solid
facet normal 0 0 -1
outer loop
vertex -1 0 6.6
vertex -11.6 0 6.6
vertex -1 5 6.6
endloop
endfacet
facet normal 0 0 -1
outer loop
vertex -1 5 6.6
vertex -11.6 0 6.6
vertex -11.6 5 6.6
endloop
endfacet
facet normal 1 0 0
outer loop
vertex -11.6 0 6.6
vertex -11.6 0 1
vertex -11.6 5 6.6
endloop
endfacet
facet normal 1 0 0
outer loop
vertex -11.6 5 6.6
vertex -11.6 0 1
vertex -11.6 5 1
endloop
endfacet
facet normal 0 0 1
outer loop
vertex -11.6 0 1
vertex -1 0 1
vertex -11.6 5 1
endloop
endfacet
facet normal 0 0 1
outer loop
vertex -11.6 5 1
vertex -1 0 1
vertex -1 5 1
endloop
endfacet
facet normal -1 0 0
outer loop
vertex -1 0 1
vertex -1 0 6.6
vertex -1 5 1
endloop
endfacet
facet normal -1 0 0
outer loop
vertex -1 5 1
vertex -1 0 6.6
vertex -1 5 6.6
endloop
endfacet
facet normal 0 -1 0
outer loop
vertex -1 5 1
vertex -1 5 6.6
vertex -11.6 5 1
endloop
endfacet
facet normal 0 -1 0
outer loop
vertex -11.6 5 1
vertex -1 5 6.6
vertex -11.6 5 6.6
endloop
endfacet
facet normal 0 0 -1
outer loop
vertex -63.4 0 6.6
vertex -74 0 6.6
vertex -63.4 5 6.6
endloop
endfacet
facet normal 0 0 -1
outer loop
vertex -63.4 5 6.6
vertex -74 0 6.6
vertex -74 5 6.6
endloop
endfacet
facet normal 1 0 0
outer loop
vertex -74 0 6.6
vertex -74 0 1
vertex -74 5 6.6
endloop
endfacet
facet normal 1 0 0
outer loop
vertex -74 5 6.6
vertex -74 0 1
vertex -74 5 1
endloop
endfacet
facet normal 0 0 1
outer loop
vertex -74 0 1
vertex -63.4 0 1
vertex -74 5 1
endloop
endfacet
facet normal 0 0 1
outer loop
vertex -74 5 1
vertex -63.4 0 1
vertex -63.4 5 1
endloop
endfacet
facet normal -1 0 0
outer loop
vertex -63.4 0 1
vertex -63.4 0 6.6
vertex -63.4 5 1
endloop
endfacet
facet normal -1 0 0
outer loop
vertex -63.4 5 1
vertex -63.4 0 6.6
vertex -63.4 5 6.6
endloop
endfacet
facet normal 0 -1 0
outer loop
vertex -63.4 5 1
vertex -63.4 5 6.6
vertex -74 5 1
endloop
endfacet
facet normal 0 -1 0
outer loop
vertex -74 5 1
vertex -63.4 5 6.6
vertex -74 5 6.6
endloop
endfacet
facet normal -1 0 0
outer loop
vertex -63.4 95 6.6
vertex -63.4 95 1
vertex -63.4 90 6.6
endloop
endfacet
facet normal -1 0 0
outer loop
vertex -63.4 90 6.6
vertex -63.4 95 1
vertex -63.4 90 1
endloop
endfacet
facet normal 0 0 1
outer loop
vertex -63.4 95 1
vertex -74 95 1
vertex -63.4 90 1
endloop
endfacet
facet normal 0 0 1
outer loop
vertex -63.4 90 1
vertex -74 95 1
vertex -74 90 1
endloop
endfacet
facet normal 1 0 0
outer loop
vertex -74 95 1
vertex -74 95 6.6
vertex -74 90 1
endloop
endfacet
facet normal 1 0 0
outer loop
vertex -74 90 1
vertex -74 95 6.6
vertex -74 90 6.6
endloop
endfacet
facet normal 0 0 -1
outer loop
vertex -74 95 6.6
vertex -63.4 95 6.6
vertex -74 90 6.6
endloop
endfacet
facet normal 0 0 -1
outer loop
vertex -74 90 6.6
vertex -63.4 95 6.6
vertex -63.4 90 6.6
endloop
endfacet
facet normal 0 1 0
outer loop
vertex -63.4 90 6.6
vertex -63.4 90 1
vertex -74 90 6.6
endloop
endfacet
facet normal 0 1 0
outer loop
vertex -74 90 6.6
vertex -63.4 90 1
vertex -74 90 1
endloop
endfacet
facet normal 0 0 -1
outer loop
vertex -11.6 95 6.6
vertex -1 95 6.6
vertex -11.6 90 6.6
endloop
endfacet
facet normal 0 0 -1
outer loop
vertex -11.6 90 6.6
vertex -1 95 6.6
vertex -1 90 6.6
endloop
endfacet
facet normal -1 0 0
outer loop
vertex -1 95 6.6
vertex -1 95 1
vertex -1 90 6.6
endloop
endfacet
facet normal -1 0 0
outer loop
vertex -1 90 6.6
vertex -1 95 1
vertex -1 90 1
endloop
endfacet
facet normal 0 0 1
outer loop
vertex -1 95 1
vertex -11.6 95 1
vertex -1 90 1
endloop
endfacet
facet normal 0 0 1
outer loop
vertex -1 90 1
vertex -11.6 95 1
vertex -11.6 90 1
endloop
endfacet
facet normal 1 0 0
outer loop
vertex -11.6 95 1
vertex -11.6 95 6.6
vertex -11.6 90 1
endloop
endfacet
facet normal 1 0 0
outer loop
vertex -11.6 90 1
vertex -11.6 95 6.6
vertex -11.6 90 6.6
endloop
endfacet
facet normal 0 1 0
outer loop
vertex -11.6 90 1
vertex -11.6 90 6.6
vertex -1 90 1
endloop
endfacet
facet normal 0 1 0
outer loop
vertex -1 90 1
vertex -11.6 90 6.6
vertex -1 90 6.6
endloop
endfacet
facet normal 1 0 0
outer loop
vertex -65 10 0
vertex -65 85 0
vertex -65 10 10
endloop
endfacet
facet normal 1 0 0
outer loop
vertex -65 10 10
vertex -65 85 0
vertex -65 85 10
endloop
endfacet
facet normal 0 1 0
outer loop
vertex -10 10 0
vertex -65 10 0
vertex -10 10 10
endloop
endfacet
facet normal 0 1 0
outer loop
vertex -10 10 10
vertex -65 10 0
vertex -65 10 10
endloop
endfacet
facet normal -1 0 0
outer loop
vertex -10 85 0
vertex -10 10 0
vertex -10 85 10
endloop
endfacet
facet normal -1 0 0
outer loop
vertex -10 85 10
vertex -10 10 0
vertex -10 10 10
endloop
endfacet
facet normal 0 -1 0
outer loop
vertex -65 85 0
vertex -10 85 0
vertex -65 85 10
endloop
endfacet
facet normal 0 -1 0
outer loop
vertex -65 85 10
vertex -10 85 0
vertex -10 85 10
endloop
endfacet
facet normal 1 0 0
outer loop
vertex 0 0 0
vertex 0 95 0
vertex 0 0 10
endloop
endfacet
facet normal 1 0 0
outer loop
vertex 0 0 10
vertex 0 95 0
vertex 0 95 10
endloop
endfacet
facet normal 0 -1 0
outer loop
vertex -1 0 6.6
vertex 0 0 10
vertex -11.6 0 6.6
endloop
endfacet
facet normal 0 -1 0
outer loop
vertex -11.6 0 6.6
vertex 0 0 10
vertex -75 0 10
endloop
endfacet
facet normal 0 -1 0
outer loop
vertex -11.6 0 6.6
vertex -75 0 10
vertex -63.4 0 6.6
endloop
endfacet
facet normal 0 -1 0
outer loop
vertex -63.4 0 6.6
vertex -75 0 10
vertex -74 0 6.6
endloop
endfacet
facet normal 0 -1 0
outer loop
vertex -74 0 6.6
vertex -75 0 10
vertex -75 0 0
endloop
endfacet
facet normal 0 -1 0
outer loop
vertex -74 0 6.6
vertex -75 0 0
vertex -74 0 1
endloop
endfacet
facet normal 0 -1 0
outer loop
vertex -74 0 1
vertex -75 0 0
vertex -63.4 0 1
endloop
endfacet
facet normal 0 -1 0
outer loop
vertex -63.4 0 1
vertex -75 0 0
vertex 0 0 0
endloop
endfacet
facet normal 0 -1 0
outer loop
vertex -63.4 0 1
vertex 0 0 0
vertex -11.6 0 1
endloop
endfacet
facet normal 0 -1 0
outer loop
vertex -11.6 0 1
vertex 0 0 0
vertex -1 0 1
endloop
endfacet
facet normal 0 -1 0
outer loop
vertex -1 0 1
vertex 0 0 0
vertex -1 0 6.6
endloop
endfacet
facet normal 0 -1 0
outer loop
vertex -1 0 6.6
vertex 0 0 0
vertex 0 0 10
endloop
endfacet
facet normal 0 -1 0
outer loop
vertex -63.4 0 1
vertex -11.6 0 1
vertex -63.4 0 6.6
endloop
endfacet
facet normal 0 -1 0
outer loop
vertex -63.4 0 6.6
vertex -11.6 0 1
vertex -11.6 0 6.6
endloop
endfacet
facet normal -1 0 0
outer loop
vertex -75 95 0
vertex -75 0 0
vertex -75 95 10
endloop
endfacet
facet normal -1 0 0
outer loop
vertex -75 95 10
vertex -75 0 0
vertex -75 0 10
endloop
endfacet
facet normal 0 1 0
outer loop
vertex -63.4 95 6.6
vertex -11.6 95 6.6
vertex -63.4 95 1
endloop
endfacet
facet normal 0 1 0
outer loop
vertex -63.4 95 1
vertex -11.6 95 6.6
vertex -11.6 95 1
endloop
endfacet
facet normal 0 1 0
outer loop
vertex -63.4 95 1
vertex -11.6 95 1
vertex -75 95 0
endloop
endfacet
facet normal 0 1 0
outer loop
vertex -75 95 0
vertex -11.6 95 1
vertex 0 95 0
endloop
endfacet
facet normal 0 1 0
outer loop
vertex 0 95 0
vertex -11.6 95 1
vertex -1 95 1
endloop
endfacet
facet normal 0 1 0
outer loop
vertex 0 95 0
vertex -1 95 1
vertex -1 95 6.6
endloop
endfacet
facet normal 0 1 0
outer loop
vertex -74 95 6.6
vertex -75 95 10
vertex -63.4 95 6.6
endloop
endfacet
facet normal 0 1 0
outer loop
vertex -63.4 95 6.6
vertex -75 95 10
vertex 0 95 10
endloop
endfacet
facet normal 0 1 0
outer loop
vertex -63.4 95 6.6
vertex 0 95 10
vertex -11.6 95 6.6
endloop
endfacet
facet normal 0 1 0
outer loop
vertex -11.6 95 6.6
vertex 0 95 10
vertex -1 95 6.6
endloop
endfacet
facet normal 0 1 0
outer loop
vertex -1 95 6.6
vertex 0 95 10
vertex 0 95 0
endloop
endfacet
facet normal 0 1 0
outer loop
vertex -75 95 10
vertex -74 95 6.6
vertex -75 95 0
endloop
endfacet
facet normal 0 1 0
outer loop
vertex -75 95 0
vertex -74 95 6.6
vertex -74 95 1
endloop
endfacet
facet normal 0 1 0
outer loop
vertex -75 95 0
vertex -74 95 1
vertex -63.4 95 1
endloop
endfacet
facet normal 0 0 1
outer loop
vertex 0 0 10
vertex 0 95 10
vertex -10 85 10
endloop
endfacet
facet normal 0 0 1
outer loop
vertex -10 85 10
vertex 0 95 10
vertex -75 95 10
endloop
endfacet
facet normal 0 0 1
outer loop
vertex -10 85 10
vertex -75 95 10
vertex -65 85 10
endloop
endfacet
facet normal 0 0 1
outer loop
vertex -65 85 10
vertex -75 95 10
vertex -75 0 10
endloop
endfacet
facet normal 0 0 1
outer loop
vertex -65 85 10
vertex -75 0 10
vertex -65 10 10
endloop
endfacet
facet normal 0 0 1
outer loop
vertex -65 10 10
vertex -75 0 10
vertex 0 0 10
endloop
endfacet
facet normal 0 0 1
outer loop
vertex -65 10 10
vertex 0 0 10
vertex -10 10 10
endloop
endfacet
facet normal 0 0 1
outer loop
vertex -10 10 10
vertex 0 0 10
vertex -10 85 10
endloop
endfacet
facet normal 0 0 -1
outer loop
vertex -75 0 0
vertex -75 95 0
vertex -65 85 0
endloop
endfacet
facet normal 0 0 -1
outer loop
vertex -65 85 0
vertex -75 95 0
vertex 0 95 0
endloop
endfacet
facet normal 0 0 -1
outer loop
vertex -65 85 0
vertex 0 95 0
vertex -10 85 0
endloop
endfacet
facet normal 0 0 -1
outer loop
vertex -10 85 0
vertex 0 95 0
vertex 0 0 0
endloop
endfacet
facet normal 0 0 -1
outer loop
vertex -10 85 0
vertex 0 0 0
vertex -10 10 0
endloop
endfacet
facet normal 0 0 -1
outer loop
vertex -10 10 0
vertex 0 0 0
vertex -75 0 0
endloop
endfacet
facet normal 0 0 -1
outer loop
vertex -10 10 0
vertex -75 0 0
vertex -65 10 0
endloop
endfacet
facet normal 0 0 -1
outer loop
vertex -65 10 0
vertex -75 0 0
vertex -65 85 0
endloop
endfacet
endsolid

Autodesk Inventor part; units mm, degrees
ref_plane "YZ Plane" through (0, 0, 0) normal (1, 0, 0) x (0, 1, 0)
ref_plane "XZ Plane" through (0, 0, 0) normal (0, 1, 0) x (-1, 0, 0)
ref_plane "XY Plane" through (0, 0, 0) normal (0, 0, 1) x (1, 0, 0)
sketch "Sketch1" plane through (0, 0, 0) normal (0, 0, 1) x (1, 0, 0)
  line L0 (0, 0) -> (-75, 0)
  line L1 (-75, 0) -> (-75, 95)
  line L2 (-75, 95) -> (0, 95)
  line L3 (0, 95) -> (0, 0)
  line L4 (-65, 85) -> (-10, 85)
  line L5 (-10, 85) -> (-10, 10)
  line L6 (-10, 10) -> (-65, 10)
  line L7 (-65, 10) -> (-65, 85)
  dimension "d0" = 75
  dimension "d1" = 95
  dimension "d10" = 55
  dimension "d11" = 75
extrude "Extrusion3" add sketch "Sketch1" along normal blind 10
sketch "Sketch2" plane through (-75, 95, 0) normal (0, 1, 0) x (1, 0, 0)
  line L0 (1, -1) -> (11.6, -1)
  line L1 (11.6, -1) -> (11.6, -6.6)
  line L2 (11.6, -6.6) -> (1, -6.6)
  line L3 (1, -6.6) -> (1, -1)
  line L4 (74, -1) -> (63.4, -1)
  line L5 (63.4, -1) -> (63.4, -6.6)
  line L6 (63.4, -6.6) -> (74, -6.6)
  line L7 (74, -6.6) -> (74, -1)
  point P0 (75, 0)
  dimension "d14" = 10.6
  dimension "d15" = 5.6
  dimension "d16" = 10.6
  dimension "d17" = 5.6
extrude "Extrusion4" cut sketch "Sketch2" against normal blind 5
sketch "Sketch3" plane through (-75, 0, 0) normal (0, -1, 0) x (1, 0, 0)
  line L0 (1, 1) -> (11.6, 1)
  line L1 (11.6, 1) -> (11.6, 6.6)
  line L2 (11.6, 6.6) -> (1, 6.6)
  line L3 (1, 6.6) -> (1, 1)
  line L4 (63.4, 6.6) -> (63.4, 1) projected
  line L5 (74, 1) -> (63.4, 1)
  line L6 (63.4, 1) -> (63.4, 6.6)
  line L7 (63.4, 6.6) -> (74, 6.6)
  line L8 (74, 6.6) -> (74, 1)
  point P0 (75, 0)
  point P1 (63.4, 1)
  dimension "d20" = 10.6
  dimension "d21" = 5.6
  dimension "d22" = 10.6
  dimension "d23" = 5.6
extrude "Extrusion5" cut sketch "Sketch3" against normal blind 5
properties part number "Shoulder_Cube_TestFit_V1"
